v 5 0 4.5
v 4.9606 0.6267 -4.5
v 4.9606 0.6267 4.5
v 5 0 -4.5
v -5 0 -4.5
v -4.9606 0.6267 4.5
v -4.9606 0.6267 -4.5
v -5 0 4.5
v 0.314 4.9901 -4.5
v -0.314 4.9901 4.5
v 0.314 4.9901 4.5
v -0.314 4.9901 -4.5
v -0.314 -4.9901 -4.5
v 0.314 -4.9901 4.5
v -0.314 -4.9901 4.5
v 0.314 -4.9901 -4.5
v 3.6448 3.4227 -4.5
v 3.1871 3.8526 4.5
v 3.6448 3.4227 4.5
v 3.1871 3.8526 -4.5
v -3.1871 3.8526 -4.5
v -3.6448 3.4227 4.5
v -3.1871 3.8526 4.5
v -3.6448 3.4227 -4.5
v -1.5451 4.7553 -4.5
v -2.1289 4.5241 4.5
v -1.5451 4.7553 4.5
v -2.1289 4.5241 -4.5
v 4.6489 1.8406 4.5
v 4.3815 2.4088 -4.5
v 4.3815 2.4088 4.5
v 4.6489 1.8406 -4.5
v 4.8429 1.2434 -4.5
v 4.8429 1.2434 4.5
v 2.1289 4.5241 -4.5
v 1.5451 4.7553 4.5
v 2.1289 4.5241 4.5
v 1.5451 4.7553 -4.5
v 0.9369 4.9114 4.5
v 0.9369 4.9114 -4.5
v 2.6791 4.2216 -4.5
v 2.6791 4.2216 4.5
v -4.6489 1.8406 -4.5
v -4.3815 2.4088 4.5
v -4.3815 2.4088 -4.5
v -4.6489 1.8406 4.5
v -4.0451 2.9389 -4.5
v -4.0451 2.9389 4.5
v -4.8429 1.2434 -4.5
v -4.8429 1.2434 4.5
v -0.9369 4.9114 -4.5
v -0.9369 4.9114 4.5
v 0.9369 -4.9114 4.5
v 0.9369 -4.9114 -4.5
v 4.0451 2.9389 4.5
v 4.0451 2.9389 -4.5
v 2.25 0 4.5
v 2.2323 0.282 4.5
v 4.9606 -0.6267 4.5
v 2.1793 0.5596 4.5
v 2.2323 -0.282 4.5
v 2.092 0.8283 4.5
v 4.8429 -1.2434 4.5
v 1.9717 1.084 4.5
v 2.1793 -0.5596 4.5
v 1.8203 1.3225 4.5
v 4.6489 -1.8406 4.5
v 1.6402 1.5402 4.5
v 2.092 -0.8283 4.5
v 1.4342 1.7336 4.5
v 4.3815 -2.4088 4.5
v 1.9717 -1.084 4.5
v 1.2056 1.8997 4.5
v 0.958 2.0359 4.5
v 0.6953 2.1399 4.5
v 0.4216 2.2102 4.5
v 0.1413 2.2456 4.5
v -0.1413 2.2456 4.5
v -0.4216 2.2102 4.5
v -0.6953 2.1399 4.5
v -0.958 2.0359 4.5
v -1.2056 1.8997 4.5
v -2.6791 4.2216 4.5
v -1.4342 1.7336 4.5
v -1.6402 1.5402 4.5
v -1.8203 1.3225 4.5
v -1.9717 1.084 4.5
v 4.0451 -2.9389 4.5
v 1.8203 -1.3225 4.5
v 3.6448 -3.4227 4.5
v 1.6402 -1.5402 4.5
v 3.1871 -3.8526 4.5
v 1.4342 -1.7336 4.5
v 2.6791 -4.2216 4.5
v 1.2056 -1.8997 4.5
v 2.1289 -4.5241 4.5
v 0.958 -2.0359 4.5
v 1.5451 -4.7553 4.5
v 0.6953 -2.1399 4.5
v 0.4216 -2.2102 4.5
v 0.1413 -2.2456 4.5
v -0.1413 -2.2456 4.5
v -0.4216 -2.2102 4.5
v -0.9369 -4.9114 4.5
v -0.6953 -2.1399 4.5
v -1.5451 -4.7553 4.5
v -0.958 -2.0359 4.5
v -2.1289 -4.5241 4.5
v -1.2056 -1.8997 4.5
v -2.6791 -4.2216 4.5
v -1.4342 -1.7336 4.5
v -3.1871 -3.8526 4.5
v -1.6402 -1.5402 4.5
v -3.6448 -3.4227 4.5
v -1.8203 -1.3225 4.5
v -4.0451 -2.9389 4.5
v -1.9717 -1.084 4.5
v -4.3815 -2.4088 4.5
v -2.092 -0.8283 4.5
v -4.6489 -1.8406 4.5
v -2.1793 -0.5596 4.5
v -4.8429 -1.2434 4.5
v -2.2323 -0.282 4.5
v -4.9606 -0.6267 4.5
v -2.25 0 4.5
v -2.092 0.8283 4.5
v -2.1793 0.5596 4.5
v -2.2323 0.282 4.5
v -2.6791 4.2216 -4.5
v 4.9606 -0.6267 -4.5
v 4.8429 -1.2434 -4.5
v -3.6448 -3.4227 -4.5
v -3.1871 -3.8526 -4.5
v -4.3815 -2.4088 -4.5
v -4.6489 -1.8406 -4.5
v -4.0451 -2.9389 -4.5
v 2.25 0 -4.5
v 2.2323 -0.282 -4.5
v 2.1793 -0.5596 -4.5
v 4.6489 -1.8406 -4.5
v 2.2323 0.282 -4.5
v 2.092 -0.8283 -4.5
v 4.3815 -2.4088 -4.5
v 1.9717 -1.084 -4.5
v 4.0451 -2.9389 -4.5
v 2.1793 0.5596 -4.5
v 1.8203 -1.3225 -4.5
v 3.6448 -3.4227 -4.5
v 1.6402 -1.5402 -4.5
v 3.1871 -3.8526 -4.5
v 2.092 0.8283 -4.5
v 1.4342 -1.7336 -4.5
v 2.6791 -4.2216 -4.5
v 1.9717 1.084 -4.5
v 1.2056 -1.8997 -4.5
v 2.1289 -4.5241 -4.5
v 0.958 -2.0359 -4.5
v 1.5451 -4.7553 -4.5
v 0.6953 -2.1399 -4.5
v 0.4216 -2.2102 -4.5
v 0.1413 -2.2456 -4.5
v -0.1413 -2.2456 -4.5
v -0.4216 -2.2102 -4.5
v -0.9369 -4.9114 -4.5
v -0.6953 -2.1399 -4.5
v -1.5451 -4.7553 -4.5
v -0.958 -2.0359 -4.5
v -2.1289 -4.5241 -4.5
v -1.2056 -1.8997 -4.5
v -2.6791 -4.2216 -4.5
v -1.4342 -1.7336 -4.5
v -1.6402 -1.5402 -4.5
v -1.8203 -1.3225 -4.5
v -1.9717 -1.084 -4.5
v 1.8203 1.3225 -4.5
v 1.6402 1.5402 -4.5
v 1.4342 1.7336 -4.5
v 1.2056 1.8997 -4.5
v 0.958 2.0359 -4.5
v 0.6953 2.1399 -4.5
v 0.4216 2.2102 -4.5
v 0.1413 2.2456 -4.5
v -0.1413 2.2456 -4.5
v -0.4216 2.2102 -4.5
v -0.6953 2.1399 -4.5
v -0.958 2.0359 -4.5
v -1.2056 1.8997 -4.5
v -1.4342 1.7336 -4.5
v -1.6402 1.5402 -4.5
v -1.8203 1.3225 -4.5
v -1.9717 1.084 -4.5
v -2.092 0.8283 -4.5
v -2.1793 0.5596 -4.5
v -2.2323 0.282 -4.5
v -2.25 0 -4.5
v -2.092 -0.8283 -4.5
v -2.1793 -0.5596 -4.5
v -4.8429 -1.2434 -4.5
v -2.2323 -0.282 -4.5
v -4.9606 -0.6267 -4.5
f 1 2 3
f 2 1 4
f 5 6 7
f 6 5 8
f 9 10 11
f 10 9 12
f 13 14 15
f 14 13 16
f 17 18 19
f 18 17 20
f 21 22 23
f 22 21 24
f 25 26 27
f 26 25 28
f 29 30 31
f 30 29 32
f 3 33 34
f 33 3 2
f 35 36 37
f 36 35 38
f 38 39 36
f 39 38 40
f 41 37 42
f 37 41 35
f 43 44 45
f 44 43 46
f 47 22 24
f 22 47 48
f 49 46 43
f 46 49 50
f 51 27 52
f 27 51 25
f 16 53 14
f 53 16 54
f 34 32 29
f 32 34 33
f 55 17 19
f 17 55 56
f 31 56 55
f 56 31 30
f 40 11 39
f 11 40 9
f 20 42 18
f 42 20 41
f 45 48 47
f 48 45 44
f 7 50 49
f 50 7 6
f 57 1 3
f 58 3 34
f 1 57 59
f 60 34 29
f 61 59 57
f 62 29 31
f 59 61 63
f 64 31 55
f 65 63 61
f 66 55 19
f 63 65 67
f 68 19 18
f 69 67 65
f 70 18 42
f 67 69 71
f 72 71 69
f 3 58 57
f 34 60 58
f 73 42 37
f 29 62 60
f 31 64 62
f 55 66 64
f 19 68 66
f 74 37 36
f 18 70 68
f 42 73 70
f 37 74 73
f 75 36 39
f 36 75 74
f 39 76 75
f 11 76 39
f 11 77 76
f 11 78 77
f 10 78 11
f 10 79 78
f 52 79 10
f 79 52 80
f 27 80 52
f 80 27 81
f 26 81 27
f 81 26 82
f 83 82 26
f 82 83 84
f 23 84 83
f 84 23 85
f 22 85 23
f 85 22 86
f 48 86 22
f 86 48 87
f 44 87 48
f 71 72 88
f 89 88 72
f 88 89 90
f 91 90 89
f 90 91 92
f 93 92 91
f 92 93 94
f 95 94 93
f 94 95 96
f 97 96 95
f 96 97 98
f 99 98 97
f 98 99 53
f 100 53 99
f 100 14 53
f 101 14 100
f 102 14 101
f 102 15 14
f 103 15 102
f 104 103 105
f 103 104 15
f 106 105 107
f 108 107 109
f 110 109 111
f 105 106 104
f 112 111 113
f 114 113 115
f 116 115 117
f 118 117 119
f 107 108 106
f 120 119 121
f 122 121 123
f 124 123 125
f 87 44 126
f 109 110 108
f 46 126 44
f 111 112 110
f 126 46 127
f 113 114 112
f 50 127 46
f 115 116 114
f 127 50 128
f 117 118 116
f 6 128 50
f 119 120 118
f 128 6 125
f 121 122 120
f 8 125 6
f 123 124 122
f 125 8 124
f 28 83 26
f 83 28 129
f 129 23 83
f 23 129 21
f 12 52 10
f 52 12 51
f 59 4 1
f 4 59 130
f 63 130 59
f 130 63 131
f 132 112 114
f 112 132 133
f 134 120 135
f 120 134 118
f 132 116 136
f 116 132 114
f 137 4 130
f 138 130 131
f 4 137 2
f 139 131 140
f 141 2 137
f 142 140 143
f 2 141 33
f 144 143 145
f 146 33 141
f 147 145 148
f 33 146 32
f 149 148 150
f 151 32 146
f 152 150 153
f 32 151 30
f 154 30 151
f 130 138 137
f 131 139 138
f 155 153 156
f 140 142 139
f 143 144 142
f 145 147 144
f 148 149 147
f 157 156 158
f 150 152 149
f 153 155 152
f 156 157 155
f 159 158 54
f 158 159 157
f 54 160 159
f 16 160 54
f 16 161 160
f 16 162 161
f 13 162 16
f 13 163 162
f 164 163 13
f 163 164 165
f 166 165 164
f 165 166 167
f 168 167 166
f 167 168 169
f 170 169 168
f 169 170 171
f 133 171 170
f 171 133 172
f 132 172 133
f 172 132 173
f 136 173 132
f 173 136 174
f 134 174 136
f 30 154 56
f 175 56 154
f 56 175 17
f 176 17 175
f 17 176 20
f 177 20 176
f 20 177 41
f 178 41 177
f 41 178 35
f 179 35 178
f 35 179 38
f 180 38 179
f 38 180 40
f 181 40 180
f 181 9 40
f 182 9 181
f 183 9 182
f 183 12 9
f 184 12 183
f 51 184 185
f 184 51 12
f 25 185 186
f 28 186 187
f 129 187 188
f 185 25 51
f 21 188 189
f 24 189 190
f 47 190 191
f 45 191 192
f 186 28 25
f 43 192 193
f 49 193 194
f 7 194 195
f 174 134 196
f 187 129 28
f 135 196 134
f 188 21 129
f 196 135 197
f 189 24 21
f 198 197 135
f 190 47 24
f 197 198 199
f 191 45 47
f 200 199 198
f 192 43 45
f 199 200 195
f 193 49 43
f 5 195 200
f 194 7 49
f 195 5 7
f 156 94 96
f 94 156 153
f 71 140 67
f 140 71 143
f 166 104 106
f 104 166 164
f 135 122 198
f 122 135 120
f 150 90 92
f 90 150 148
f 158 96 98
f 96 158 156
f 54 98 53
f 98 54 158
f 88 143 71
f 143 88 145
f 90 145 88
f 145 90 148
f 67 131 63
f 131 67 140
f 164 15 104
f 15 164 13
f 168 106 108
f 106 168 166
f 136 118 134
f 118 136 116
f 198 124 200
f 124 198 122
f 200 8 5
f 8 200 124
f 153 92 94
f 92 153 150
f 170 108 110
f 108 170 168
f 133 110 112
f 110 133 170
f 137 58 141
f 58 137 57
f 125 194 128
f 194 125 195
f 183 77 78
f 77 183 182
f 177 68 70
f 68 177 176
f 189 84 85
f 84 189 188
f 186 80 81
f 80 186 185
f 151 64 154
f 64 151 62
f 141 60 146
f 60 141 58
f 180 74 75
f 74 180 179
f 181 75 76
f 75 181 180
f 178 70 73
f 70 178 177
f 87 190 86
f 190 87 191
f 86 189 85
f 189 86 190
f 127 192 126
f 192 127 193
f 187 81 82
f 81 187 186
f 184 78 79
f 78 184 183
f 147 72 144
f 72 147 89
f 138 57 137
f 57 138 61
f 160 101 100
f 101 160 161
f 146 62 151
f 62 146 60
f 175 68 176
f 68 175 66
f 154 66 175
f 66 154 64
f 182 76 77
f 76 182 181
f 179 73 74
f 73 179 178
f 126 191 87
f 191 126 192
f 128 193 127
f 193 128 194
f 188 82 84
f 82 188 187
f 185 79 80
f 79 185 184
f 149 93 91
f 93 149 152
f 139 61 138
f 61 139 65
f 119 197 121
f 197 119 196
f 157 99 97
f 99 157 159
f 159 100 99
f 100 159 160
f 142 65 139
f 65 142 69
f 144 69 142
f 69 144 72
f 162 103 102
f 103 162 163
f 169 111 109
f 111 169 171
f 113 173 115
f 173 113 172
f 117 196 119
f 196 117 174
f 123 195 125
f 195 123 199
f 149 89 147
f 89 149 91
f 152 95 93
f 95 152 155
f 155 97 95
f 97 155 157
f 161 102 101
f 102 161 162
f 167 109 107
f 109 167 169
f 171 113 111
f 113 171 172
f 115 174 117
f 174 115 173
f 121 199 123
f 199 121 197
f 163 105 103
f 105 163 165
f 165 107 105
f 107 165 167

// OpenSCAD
$fn = 50;


difference() {
	union() {
		translate(v = [0, 0, -4.5000000000]) {
			cylinder(h = 9, r = 5.0000000000);
		}
	}
	union() {
		translate(v = [0, 0, -100.0000000000]) {
			cylinder(h = 200, r = 2.2500000000);
		}
	}
}
